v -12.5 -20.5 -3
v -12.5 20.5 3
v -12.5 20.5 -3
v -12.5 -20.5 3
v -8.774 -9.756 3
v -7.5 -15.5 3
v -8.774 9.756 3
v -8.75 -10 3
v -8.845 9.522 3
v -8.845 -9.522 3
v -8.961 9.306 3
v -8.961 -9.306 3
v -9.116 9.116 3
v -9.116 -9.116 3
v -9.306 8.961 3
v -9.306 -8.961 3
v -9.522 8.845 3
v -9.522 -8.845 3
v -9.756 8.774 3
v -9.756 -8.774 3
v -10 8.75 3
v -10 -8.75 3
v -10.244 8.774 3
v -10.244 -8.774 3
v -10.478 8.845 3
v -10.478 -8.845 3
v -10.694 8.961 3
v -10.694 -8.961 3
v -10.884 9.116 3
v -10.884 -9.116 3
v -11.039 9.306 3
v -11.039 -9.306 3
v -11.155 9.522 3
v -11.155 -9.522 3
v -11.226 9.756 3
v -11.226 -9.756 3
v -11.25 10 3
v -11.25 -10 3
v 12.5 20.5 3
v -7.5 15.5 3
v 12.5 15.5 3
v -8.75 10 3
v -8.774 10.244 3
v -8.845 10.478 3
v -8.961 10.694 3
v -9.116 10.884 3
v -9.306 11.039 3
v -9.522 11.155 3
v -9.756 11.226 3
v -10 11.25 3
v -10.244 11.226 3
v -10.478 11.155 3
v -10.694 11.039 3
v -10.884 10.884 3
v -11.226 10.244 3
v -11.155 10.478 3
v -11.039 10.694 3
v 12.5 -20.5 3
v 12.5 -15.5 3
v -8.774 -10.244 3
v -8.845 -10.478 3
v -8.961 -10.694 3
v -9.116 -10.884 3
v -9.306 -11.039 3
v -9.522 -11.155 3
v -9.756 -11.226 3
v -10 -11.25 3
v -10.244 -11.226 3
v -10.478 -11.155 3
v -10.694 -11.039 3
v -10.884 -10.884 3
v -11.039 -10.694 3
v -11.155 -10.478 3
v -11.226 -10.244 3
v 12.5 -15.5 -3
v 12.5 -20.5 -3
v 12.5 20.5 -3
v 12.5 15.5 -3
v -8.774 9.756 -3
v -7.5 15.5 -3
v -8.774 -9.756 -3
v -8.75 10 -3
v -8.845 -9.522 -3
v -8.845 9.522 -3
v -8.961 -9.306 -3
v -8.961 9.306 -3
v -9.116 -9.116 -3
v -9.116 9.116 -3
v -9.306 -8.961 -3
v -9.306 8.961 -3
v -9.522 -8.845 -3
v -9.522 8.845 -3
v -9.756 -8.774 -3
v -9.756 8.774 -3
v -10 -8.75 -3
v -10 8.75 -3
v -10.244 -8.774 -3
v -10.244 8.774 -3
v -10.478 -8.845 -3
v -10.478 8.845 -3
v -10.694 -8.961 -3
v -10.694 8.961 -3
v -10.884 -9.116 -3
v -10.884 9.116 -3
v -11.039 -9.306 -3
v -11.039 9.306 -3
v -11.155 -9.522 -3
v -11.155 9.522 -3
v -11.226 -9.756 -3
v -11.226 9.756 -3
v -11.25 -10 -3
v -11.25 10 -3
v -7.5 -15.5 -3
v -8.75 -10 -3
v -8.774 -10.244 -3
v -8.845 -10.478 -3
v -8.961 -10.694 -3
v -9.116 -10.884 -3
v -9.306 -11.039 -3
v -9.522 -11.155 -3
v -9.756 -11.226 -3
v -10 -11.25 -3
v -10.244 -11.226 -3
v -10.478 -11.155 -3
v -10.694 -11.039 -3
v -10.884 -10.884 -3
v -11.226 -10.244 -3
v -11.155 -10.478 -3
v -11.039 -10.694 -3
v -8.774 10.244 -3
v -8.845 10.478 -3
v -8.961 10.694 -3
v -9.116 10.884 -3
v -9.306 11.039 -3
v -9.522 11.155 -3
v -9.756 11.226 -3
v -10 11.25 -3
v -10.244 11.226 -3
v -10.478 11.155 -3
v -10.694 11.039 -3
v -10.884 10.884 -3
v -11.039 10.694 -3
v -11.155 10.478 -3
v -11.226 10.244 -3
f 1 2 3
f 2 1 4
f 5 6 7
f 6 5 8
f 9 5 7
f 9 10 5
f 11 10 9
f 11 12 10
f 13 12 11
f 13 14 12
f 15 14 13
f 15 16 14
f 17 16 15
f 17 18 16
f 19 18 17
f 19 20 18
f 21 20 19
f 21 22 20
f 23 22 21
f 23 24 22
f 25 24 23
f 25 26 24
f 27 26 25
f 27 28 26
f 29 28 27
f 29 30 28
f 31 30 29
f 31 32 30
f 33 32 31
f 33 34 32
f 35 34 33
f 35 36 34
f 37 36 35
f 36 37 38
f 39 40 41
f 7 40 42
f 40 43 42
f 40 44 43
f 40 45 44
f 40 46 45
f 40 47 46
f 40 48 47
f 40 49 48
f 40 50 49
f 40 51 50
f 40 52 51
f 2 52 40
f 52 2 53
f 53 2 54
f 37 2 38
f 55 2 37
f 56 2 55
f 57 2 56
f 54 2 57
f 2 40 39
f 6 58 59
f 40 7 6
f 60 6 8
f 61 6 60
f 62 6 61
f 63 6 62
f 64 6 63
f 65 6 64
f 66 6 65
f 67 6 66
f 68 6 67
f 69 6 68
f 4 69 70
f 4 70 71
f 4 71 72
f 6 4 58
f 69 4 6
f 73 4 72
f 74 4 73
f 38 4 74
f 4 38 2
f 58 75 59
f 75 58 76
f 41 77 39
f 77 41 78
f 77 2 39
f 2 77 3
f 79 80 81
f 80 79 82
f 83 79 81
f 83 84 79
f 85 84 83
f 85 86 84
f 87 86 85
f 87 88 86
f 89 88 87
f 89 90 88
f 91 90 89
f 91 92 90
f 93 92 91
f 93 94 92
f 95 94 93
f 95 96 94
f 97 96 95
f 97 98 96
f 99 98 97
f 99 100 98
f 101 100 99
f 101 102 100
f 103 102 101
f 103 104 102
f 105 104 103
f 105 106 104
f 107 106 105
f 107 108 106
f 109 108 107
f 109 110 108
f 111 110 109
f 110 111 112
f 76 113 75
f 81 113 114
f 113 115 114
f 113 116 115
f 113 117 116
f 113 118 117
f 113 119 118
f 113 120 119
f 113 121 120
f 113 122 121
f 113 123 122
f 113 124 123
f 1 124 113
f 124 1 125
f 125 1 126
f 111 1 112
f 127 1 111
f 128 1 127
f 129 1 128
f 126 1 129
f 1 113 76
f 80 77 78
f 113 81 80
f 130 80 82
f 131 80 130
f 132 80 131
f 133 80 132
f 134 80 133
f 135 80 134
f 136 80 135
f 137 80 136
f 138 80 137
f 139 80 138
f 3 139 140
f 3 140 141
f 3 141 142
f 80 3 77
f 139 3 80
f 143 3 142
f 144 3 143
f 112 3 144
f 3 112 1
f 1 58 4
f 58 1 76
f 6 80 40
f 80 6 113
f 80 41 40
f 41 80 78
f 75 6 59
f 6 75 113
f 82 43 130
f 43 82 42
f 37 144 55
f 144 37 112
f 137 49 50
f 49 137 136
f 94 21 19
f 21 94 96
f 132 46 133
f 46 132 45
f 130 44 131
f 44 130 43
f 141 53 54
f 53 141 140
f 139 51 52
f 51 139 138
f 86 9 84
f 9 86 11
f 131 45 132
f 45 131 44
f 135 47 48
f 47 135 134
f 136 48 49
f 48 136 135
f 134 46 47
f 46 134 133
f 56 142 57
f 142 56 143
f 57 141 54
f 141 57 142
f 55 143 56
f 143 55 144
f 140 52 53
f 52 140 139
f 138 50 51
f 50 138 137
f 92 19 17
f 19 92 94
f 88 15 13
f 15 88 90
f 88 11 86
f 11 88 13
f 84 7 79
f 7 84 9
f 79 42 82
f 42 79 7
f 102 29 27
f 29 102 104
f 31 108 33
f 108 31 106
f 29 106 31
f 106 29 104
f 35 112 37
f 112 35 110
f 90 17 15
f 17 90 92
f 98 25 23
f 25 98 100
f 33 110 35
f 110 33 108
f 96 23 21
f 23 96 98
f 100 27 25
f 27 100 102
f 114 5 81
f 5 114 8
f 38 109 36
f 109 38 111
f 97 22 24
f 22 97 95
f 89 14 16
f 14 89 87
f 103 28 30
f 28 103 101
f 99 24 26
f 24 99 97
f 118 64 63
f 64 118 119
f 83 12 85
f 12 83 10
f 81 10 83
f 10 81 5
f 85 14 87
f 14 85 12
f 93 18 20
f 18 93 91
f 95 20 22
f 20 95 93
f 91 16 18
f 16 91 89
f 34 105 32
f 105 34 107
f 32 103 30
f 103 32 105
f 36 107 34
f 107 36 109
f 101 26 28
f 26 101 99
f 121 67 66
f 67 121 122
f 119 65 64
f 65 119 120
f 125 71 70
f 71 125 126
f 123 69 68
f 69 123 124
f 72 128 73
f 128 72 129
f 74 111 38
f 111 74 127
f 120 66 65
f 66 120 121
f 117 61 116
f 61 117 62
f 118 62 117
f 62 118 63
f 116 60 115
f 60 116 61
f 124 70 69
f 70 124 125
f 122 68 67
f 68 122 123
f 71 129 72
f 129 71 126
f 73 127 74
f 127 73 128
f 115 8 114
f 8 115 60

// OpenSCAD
module battery_support_top(slot = 31, wall = 5, bs_h = 6, slot_in = 20) {
  $fn = 32;
  difference() {
    cube([wall + slot_in, 2 * wall + slot, bs_h], center = true);  
    
    translate([wall / 2, 0, 0])
    cube([slot_in + 1e-3, slot, 2 * bs_h], center = true);    
    
    translate([-wall/2 - (slot_in - wall)/2, 10, 0])
    cylinder(d = 2.5, h = 2 * bs_h, center = true);

    translate([-wall/2 - (slot_in - wall)/2, -10, 0])
    cylinder(d = 2.5, h = 2 * bs_h, center = true);
  }
}


module battery_support_vert(w = 2, h = 34.5){
  $fn = 32;
  difference() {
    linear_extrude(height = 30, center = true, convexity = 10)
    polygon(points=[[0, 0],
                    [20, 0],
                    [20, w],
                    [w, w],
                    [w, h + 5],
                    [0, h + 5],
                    [0, h + 2],
                    [-3, h + 2],
                    [-3, h],
                    [0, h],
                  ]);
    
    translate([10, 0, 10])
    rotate([90, 0, 0])
    cylinder(d = 2.5, h = 10, center = true);

    translate([10, 0, -10])
    rotate([90, 0, 0])
    cylinder(d = 2.5, h = 10, center = true);
  }
  
}

battery_support_top();
//battery_support_vert();
